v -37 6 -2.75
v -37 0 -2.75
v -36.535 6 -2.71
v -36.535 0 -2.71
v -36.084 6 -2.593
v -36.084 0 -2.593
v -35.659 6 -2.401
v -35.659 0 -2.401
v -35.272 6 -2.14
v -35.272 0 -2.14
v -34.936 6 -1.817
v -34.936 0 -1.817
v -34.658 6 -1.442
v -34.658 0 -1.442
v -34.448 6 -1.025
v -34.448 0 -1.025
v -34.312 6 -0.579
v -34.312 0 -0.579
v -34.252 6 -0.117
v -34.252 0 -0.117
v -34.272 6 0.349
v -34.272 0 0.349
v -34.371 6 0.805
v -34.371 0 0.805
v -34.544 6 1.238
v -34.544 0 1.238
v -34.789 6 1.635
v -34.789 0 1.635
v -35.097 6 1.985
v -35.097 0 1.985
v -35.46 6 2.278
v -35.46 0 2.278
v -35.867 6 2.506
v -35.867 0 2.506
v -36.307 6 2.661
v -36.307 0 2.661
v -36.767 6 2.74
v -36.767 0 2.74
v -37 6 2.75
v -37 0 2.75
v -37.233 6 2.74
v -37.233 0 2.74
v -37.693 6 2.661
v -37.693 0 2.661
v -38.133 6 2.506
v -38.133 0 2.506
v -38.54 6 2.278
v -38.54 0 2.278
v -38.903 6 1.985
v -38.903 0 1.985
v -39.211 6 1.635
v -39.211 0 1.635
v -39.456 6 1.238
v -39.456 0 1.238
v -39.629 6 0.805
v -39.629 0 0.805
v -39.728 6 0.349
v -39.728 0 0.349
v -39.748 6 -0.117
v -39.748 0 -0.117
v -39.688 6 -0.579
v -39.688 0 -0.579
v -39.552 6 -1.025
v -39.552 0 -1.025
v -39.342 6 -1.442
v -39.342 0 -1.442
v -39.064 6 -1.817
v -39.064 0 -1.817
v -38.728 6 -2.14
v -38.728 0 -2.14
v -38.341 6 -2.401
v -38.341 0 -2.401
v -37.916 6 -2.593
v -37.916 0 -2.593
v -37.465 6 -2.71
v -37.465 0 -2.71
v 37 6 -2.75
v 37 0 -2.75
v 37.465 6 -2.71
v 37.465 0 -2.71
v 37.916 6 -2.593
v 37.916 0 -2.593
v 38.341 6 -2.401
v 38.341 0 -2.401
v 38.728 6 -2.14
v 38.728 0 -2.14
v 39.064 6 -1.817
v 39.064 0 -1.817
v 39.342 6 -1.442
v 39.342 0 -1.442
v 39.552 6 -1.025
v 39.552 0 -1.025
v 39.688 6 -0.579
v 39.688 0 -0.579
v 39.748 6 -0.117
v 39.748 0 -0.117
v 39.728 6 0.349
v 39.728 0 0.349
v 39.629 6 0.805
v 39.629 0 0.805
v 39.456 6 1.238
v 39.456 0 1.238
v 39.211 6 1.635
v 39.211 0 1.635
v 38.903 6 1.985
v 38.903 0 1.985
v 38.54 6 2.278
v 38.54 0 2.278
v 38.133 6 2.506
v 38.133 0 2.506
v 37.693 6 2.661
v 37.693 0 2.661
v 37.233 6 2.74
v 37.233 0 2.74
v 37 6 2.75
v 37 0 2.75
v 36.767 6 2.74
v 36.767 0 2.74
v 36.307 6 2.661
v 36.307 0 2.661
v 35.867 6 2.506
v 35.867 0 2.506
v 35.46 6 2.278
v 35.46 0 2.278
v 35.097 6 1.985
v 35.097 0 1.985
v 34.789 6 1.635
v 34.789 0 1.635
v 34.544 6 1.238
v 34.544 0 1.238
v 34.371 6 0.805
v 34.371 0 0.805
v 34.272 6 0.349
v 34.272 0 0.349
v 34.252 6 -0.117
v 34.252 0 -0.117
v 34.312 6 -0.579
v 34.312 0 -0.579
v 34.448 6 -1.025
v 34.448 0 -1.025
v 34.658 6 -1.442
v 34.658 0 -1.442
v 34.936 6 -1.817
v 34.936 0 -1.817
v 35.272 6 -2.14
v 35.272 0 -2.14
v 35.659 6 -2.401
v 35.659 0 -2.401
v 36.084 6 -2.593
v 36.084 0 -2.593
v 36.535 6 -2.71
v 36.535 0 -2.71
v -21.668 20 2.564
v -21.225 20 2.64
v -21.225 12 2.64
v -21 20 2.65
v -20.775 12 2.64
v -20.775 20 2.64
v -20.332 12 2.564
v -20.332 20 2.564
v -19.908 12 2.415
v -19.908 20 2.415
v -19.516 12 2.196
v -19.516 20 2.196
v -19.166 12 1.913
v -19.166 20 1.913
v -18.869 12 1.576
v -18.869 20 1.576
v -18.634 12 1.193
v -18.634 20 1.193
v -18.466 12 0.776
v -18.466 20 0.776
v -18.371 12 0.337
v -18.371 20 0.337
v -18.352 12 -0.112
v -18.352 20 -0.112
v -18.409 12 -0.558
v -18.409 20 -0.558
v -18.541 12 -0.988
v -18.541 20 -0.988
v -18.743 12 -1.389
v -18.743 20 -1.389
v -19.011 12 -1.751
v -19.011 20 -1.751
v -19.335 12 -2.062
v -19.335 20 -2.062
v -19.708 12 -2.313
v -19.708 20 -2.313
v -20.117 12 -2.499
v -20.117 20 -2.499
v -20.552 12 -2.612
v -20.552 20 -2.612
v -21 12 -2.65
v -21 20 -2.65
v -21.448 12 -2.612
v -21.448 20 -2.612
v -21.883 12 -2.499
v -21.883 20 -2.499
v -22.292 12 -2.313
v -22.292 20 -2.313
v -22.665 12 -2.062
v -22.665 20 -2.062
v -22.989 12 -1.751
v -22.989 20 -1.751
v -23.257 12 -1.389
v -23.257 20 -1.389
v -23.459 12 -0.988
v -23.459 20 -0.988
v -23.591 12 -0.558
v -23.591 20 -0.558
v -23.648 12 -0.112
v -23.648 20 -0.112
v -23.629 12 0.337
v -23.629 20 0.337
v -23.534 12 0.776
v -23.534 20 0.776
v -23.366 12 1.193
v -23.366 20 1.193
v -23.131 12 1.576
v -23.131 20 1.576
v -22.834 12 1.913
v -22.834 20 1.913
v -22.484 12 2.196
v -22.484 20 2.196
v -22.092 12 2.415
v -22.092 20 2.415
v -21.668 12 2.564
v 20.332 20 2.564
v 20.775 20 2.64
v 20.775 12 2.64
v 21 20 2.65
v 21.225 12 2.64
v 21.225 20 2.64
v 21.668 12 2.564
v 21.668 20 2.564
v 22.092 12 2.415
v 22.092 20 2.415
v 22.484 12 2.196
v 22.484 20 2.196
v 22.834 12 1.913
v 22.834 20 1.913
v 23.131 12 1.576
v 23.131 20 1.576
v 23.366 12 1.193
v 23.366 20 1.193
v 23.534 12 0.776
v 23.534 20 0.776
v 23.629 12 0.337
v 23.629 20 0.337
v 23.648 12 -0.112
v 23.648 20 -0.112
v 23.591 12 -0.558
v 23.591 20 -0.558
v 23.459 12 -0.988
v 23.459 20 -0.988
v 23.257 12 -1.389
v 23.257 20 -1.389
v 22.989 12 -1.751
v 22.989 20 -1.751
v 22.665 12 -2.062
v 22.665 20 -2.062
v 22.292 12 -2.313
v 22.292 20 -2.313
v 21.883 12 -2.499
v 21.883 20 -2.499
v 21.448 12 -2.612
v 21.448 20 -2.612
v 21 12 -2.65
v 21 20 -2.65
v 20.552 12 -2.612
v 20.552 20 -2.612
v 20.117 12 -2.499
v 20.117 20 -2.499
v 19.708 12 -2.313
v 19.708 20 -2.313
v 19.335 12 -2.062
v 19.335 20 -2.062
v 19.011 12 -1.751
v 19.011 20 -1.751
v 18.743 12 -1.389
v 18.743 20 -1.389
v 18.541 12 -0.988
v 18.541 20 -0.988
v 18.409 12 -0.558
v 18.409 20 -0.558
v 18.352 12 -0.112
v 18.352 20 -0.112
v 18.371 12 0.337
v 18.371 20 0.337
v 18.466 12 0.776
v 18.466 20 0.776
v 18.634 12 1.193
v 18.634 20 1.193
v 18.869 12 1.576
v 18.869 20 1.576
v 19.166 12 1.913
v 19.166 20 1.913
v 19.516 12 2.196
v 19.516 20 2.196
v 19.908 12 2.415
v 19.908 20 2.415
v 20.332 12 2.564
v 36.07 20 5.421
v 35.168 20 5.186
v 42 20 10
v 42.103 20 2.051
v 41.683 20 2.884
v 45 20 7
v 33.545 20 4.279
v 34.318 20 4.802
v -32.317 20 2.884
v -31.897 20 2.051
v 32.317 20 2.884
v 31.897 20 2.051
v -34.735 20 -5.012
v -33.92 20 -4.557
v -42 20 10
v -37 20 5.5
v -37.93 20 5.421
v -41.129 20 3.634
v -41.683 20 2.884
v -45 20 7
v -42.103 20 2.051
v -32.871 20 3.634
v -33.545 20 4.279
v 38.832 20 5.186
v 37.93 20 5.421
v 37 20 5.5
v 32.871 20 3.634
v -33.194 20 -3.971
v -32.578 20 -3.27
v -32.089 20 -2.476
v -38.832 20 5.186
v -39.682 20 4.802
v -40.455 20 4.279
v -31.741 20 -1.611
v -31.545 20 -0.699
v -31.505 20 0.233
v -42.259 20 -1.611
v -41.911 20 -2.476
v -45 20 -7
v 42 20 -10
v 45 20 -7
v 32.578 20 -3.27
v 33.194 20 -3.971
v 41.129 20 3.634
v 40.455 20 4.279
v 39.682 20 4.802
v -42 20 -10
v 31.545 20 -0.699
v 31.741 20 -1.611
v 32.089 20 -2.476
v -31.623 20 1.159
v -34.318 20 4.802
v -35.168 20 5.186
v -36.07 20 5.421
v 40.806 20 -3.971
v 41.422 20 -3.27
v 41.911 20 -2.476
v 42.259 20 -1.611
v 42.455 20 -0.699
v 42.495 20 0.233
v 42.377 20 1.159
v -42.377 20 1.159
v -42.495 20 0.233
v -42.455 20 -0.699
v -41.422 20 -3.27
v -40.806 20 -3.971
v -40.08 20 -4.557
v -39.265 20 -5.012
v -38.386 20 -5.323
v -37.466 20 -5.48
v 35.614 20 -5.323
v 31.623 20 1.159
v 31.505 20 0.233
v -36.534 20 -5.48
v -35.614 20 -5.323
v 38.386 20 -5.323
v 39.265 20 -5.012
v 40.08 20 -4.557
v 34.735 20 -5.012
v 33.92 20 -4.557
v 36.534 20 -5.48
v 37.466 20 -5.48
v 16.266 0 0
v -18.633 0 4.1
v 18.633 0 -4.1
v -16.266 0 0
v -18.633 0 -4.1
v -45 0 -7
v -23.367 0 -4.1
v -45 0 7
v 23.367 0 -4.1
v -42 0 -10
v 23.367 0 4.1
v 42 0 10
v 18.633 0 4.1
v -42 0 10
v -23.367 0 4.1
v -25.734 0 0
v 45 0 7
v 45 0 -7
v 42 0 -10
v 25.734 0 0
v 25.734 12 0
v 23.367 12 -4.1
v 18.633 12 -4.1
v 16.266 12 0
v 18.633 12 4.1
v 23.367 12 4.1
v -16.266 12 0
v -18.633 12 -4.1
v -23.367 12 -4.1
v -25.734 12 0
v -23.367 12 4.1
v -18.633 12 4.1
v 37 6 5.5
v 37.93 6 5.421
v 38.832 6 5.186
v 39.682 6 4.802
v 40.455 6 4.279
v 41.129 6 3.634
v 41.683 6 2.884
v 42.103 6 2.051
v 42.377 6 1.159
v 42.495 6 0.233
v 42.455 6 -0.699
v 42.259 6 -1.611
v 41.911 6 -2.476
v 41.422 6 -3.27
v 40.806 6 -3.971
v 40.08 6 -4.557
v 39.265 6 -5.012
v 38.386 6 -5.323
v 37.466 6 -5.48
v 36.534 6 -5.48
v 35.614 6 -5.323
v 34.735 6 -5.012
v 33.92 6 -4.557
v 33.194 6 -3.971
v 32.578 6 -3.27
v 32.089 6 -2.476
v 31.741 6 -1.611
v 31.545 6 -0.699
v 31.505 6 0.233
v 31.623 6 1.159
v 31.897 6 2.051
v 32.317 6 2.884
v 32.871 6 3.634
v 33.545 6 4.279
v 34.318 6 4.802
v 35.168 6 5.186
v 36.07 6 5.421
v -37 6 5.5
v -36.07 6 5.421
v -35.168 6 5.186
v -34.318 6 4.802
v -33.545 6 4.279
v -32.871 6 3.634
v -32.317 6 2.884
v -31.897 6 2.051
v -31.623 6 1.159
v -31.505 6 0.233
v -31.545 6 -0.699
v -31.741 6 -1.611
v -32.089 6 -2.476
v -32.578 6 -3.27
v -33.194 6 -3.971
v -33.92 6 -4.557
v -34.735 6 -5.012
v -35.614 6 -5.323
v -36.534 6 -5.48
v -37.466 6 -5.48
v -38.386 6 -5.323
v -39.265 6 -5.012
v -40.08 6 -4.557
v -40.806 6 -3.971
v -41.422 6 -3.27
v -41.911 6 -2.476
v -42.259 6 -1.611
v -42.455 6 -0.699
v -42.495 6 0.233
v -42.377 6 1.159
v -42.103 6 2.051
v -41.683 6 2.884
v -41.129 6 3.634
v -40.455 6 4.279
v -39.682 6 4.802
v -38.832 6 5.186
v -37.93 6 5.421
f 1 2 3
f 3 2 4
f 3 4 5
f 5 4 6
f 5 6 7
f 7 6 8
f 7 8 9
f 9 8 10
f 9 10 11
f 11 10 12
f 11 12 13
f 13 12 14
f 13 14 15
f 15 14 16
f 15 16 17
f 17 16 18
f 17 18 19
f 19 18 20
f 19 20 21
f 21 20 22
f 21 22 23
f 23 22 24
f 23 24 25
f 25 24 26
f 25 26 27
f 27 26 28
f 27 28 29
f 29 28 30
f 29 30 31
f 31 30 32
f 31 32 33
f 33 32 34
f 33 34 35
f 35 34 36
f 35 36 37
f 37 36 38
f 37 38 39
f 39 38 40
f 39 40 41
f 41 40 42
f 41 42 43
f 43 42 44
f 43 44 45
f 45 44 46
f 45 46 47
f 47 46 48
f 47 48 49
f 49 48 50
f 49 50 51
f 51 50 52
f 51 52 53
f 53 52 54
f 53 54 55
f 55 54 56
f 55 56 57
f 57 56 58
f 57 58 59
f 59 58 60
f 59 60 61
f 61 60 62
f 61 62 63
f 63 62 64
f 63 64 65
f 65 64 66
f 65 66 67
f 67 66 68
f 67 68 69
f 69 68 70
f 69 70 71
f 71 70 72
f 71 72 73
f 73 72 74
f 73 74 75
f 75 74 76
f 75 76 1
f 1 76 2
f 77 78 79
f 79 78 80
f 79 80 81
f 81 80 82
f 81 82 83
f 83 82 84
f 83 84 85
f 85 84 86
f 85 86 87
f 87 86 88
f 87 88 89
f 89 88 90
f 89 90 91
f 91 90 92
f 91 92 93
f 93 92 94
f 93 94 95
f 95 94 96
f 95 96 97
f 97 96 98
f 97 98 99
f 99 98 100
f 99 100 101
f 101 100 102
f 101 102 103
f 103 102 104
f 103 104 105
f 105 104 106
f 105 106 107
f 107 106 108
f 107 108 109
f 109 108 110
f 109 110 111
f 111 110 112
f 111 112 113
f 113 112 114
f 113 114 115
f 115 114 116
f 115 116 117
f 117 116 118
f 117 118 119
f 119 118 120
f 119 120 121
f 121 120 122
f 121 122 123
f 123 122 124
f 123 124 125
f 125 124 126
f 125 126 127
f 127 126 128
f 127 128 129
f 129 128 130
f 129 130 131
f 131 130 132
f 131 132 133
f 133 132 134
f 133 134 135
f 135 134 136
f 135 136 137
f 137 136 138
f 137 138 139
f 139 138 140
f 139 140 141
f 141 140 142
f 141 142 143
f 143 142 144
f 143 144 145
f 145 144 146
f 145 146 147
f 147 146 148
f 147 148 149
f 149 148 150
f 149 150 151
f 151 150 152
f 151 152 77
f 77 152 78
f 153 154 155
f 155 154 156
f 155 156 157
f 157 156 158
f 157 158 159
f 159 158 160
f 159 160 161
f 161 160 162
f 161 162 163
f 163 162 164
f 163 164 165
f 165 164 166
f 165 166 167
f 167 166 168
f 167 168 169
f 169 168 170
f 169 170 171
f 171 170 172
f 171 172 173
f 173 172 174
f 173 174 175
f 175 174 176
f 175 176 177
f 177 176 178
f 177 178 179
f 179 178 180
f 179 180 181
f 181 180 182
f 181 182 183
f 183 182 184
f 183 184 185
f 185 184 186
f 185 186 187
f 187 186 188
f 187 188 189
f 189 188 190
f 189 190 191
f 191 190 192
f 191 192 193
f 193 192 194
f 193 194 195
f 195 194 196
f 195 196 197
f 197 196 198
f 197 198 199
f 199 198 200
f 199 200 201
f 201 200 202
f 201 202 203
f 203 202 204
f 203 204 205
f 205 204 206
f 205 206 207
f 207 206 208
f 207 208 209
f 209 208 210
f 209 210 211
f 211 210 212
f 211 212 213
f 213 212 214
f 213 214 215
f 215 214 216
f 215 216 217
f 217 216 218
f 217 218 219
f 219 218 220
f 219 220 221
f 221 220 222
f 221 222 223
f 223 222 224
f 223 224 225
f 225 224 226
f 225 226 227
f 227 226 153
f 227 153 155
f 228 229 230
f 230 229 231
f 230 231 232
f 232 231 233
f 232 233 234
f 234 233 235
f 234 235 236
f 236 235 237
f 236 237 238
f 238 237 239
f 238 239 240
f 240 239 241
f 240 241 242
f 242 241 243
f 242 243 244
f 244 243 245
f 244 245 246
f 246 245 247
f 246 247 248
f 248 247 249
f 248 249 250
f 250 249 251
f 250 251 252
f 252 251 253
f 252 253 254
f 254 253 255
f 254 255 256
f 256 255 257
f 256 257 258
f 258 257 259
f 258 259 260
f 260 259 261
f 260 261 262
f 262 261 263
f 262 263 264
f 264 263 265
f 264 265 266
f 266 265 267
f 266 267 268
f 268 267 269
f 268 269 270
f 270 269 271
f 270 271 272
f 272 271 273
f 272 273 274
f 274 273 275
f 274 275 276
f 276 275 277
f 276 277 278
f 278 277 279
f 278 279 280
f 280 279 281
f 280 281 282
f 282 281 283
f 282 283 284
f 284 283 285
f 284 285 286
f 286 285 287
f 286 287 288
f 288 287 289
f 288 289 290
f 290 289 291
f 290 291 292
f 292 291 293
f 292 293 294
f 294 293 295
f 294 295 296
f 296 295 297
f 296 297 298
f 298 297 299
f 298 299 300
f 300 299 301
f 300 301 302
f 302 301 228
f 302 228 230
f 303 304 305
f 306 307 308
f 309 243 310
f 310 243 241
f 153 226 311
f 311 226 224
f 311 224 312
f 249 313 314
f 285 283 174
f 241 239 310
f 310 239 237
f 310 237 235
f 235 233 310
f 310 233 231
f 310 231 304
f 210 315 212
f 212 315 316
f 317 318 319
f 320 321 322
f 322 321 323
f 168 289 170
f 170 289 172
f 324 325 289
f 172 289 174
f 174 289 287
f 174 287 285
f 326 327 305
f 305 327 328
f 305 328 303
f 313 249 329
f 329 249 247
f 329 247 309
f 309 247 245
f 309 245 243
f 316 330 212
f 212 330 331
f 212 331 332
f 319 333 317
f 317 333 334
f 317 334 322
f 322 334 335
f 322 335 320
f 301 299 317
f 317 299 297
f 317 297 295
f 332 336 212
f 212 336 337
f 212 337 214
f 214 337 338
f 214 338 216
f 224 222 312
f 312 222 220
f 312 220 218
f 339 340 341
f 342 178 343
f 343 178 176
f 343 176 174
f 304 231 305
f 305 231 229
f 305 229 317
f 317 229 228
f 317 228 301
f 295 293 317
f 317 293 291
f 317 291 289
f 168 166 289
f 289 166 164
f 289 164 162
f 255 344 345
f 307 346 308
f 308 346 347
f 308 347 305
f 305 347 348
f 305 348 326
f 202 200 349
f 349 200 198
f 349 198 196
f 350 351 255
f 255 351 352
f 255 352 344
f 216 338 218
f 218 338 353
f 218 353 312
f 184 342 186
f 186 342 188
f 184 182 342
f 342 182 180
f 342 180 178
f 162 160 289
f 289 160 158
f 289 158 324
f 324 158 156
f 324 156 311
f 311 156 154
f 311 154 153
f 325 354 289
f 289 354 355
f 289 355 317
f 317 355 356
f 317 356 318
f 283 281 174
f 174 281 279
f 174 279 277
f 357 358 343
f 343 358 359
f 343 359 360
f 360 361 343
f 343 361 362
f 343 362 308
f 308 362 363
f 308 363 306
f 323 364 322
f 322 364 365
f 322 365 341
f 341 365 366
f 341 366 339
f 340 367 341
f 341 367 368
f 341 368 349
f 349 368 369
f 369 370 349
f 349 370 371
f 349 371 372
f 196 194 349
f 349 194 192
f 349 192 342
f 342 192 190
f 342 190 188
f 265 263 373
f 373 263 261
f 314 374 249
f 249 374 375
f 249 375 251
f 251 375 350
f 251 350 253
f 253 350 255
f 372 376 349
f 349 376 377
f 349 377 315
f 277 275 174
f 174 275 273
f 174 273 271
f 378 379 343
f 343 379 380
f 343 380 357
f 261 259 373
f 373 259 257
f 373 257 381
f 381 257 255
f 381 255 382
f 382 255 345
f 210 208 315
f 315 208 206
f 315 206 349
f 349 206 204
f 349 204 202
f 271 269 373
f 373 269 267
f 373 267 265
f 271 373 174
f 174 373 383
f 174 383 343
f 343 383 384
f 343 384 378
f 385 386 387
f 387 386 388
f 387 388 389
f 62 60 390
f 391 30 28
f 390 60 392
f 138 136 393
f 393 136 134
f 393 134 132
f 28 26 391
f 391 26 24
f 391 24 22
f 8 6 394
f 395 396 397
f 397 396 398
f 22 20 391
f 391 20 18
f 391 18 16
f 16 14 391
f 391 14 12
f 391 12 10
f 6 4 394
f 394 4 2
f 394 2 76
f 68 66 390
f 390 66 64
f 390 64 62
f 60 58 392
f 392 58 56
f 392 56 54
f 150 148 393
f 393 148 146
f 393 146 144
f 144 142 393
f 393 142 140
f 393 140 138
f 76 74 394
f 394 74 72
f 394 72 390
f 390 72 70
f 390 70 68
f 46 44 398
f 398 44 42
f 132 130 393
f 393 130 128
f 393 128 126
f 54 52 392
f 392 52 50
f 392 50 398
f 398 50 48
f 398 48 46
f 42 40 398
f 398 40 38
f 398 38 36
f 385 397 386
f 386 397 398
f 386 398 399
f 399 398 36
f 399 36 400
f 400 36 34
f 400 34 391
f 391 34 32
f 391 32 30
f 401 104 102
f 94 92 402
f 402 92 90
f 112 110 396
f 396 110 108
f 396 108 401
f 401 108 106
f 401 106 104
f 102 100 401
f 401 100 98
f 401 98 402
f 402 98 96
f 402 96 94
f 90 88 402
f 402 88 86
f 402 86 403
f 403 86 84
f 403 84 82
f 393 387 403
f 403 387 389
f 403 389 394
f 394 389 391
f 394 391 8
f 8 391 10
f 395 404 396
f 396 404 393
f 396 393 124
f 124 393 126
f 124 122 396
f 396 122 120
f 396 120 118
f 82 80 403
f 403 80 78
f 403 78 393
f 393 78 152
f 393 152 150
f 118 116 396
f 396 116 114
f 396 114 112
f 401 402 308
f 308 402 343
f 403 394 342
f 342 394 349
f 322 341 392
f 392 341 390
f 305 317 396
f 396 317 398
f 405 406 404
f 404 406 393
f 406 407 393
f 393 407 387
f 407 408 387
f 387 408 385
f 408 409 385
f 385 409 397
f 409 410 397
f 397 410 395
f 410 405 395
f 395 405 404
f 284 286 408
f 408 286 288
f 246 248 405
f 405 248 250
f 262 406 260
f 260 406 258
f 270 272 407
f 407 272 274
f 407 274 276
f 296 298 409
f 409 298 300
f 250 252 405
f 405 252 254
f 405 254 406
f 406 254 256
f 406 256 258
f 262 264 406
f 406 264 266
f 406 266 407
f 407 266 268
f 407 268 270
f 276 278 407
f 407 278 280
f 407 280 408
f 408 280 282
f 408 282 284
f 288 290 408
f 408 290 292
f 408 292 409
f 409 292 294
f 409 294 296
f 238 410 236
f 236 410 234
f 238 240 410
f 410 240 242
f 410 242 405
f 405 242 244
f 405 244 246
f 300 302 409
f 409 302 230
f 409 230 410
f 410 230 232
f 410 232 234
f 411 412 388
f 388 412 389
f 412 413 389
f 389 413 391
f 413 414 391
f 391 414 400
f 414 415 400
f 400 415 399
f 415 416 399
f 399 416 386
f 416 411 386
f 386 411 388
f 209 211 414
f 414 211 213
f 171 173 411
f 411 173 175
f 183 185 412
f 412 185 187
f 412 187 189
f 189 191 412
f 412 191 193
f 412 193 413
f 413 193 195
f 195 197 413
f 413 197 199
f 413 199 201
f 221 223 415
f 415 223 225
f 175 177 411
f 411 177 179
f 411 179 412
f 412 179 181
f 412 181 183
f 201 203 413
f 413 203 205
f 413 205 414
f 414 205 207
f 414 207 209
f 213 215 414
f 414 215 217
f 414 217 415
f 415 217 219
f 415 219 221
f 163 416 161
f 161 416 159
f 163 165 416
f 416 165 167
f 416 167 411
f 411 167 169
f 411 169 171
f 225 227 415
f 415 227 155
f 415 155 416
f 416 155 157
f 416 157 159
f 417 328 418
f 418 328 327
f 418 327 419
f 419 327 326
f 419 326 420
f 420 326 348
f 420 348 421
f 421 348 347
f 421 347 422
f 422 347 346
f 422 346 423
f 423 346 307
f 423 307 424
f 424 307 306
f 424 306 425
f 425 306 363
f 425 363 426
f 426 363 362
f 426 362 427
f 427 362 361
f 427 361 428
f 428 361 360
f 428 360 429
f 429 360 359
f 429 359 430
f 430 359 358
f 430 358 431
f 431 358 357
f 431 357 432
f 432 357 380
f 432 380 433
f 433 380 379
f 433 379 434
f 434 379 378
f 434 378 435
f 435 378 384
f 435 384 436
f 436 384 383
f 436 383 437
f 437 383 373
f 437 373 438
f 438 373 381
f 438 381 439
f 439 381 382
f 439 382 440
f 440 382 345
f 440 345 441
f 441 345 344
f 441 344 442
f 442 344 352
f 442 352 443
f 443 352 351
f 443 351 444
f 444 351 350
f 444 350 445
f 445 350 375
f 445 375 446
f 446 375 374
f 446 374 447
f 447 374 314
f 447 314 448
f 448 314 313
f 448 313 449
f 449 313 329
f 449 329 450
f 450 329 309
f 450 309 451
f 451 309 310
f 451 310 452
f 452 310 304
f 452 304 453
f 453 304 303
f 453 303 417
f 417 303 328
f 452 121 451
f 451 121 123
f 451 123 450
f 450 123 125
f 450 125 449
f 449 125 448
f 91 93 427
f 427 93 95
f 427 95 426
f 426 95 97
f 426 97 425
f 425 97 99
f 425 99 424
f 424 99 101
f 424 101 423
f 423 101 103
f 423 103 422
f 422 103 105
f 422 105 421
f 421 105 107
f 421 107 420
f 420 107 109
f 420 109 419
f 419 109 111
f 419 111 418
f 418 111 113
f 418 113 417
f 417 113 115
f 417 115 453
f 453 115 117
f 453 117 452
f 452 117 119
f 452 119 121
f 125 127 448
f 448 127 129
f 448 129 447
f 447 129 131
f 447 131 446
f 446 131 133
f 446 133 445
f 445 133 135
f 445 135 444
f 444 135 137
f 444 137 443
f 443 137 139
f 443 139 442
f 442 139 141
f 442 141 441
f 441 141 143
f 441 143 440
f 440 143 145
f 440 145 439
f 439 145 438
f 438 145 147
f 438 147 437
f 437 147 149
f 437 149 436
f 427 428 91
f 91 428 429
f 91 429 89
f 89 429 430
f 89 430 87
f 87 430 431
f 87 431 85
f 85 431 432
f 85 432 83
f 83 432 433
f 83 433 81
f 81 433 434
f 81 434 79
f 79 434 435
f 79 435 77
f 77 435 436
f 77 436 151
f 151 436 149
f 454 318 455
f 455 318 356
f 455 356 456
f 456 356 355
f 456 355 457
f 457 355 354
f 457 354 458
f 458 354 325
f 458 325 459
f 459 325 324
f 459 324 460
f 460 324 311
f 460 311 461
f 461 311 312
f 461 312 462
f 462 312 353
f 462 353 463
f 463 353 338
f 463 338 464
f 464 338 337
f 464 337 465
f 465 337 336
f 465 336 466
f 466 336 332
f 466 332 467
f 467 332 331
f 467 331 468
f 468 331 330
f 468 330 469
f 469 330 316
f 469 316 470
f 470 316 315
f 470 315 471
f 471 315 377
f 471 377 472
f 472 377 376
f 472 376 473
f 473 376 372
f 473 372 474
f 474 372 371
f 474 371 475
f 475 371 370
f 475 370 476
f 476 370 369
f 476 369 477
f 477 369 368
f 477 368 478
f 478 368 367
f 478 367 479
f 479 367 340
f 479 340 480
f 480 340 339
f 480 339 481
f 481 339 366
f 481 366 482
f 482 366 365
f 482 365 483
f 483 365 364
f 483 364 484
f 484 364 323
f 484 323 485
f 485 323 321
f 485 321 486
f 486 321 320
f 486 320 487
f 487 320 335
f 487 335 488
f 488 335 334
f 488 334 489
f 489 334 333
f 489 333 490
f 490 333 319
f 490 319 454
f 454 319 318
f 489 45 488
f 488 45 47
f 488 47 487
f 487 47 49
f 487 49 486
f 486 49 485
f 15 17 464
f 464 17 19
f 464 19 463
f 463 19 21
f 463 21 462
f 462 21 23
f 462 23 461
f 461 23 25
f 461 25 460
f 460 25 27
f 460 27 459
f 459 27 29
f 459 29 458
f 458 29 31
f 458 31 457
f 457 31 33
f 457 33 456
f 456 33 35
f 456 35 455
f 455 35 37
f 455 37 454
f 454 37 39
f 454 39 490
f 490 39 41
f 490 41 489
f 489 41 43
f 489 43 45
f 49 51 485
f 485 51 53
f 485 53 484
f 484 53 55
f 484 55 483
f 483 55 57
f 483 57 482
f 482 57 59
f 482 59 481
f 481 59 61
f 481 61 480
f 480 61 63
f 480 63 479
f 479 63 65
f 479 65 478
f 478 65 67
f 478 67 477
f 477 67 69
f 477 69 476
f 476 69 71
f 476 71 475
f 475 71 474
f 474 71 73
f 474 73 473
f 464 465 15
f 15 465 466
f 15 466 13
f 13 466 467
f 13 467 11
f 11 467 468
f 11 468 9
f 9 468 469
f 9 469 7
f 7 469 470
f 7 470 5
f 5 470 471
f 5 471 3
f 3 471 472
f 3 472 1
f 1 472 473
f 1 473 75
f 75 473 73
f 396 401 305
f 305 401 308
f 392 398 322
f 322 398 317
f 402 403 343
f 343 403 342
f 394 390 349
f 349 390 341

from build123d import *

# Parameters (mm, degrees)
SKETCH1_W           = 90
SKETCH1_H           = 20
SKETCH1_R           = 2.65
SKETCH1_R_2         = 2.75
BOSS_EXTRUDE1_DEPTH = 20
CUT_EXTRUDE1_DEPTH  = 12
SKETCH3_R           = 5.5
CUT_EXTRUDE2_DEPTH  = 14
CHAMFER1_SIZE       = 3


with BuildPart() as part:
    # Sketch1 → Boss-Extrude1 (new body)
    with BuildSketch(Plane(origin=(0, 0, 0), x_dir=(1, 0, 0), z_dir=(0, 1, 0))):
        Rectangle(SKETCH1_W, SKETCH1_H)
        with Locations(Location((-21, 0, 0), (0, 0, 270))):
            Circle(SKETCH1_R, mode=Mode.SUBTRACT)
        with Locations(Location((21, 0, 0), (0, 0, 270))):
            Circle(SKETCH1_R, mode=Mode.SUBTRACT)
        with Locations(Location((-37, 0, 0), (0, 0, 270))):
            Circle(SKETCH1_R_2, mode=Mode.SUBTRACT)
        with Locations(Location((37, 0, 0), (0, 0, 270))):
            Circle(SKETCH1_R_2, mode=Mode.SUBTRACT)
    extrude(amount=BOSS_EXTRUDE1_DEPTH)

    # Sketch2 → Cut-Extrude1 (cut)
    with BuildSketch(Plane.XZ):
        Polygon((-16.265727793, 0), (-18.632863896, 4.1), (-23.367136104, 4.1), (-25.734272207, 0), (-23.367136104, -4.1), (-18.632863896, -4.1), align=None)
        Polygon((25.734272207, 0), (23.367136104, 4.1), (18.632863896, 4.1), (16.265727793, 0), (18.632863896, -4.1), (23.367136104, -4.1), align=None)
    extrude(amount=-CUT_EXTRUDE1_DEPTH, mode=Mode.SUBTRACT)

    # Sketch3 → Cut-Extrude2 (cut)
    with BuildSketch(Plane(origin=(0, 20, 0), x_dir=(1, 0, 0), z_dir=(0, 1, 0))):
        with Locations(Location((-37, 0, 0), (0, 0, 270))):
            Circle(SKETCH3_R)
        with Locations(Location((37, 0, 0), (0, 0, 270))):
            Circle(SKETCH3_R)
    extrude(amount=-CUT_EXTRUDE2_DEPTH, mode=Mode.SUBTRACT)

    # Chamfer1
    chamfer1_edges = [part.edges().sort_by_distance(p)[0] for p in [
        (45, 10, 10),
        (-45, 10, 10),
        (-45, 10, -10),
        (45, 10, -10),
    ]]
    chamfer(chamfer1_edges, length=CHAMFER1_SIZE)


solid = part.part
